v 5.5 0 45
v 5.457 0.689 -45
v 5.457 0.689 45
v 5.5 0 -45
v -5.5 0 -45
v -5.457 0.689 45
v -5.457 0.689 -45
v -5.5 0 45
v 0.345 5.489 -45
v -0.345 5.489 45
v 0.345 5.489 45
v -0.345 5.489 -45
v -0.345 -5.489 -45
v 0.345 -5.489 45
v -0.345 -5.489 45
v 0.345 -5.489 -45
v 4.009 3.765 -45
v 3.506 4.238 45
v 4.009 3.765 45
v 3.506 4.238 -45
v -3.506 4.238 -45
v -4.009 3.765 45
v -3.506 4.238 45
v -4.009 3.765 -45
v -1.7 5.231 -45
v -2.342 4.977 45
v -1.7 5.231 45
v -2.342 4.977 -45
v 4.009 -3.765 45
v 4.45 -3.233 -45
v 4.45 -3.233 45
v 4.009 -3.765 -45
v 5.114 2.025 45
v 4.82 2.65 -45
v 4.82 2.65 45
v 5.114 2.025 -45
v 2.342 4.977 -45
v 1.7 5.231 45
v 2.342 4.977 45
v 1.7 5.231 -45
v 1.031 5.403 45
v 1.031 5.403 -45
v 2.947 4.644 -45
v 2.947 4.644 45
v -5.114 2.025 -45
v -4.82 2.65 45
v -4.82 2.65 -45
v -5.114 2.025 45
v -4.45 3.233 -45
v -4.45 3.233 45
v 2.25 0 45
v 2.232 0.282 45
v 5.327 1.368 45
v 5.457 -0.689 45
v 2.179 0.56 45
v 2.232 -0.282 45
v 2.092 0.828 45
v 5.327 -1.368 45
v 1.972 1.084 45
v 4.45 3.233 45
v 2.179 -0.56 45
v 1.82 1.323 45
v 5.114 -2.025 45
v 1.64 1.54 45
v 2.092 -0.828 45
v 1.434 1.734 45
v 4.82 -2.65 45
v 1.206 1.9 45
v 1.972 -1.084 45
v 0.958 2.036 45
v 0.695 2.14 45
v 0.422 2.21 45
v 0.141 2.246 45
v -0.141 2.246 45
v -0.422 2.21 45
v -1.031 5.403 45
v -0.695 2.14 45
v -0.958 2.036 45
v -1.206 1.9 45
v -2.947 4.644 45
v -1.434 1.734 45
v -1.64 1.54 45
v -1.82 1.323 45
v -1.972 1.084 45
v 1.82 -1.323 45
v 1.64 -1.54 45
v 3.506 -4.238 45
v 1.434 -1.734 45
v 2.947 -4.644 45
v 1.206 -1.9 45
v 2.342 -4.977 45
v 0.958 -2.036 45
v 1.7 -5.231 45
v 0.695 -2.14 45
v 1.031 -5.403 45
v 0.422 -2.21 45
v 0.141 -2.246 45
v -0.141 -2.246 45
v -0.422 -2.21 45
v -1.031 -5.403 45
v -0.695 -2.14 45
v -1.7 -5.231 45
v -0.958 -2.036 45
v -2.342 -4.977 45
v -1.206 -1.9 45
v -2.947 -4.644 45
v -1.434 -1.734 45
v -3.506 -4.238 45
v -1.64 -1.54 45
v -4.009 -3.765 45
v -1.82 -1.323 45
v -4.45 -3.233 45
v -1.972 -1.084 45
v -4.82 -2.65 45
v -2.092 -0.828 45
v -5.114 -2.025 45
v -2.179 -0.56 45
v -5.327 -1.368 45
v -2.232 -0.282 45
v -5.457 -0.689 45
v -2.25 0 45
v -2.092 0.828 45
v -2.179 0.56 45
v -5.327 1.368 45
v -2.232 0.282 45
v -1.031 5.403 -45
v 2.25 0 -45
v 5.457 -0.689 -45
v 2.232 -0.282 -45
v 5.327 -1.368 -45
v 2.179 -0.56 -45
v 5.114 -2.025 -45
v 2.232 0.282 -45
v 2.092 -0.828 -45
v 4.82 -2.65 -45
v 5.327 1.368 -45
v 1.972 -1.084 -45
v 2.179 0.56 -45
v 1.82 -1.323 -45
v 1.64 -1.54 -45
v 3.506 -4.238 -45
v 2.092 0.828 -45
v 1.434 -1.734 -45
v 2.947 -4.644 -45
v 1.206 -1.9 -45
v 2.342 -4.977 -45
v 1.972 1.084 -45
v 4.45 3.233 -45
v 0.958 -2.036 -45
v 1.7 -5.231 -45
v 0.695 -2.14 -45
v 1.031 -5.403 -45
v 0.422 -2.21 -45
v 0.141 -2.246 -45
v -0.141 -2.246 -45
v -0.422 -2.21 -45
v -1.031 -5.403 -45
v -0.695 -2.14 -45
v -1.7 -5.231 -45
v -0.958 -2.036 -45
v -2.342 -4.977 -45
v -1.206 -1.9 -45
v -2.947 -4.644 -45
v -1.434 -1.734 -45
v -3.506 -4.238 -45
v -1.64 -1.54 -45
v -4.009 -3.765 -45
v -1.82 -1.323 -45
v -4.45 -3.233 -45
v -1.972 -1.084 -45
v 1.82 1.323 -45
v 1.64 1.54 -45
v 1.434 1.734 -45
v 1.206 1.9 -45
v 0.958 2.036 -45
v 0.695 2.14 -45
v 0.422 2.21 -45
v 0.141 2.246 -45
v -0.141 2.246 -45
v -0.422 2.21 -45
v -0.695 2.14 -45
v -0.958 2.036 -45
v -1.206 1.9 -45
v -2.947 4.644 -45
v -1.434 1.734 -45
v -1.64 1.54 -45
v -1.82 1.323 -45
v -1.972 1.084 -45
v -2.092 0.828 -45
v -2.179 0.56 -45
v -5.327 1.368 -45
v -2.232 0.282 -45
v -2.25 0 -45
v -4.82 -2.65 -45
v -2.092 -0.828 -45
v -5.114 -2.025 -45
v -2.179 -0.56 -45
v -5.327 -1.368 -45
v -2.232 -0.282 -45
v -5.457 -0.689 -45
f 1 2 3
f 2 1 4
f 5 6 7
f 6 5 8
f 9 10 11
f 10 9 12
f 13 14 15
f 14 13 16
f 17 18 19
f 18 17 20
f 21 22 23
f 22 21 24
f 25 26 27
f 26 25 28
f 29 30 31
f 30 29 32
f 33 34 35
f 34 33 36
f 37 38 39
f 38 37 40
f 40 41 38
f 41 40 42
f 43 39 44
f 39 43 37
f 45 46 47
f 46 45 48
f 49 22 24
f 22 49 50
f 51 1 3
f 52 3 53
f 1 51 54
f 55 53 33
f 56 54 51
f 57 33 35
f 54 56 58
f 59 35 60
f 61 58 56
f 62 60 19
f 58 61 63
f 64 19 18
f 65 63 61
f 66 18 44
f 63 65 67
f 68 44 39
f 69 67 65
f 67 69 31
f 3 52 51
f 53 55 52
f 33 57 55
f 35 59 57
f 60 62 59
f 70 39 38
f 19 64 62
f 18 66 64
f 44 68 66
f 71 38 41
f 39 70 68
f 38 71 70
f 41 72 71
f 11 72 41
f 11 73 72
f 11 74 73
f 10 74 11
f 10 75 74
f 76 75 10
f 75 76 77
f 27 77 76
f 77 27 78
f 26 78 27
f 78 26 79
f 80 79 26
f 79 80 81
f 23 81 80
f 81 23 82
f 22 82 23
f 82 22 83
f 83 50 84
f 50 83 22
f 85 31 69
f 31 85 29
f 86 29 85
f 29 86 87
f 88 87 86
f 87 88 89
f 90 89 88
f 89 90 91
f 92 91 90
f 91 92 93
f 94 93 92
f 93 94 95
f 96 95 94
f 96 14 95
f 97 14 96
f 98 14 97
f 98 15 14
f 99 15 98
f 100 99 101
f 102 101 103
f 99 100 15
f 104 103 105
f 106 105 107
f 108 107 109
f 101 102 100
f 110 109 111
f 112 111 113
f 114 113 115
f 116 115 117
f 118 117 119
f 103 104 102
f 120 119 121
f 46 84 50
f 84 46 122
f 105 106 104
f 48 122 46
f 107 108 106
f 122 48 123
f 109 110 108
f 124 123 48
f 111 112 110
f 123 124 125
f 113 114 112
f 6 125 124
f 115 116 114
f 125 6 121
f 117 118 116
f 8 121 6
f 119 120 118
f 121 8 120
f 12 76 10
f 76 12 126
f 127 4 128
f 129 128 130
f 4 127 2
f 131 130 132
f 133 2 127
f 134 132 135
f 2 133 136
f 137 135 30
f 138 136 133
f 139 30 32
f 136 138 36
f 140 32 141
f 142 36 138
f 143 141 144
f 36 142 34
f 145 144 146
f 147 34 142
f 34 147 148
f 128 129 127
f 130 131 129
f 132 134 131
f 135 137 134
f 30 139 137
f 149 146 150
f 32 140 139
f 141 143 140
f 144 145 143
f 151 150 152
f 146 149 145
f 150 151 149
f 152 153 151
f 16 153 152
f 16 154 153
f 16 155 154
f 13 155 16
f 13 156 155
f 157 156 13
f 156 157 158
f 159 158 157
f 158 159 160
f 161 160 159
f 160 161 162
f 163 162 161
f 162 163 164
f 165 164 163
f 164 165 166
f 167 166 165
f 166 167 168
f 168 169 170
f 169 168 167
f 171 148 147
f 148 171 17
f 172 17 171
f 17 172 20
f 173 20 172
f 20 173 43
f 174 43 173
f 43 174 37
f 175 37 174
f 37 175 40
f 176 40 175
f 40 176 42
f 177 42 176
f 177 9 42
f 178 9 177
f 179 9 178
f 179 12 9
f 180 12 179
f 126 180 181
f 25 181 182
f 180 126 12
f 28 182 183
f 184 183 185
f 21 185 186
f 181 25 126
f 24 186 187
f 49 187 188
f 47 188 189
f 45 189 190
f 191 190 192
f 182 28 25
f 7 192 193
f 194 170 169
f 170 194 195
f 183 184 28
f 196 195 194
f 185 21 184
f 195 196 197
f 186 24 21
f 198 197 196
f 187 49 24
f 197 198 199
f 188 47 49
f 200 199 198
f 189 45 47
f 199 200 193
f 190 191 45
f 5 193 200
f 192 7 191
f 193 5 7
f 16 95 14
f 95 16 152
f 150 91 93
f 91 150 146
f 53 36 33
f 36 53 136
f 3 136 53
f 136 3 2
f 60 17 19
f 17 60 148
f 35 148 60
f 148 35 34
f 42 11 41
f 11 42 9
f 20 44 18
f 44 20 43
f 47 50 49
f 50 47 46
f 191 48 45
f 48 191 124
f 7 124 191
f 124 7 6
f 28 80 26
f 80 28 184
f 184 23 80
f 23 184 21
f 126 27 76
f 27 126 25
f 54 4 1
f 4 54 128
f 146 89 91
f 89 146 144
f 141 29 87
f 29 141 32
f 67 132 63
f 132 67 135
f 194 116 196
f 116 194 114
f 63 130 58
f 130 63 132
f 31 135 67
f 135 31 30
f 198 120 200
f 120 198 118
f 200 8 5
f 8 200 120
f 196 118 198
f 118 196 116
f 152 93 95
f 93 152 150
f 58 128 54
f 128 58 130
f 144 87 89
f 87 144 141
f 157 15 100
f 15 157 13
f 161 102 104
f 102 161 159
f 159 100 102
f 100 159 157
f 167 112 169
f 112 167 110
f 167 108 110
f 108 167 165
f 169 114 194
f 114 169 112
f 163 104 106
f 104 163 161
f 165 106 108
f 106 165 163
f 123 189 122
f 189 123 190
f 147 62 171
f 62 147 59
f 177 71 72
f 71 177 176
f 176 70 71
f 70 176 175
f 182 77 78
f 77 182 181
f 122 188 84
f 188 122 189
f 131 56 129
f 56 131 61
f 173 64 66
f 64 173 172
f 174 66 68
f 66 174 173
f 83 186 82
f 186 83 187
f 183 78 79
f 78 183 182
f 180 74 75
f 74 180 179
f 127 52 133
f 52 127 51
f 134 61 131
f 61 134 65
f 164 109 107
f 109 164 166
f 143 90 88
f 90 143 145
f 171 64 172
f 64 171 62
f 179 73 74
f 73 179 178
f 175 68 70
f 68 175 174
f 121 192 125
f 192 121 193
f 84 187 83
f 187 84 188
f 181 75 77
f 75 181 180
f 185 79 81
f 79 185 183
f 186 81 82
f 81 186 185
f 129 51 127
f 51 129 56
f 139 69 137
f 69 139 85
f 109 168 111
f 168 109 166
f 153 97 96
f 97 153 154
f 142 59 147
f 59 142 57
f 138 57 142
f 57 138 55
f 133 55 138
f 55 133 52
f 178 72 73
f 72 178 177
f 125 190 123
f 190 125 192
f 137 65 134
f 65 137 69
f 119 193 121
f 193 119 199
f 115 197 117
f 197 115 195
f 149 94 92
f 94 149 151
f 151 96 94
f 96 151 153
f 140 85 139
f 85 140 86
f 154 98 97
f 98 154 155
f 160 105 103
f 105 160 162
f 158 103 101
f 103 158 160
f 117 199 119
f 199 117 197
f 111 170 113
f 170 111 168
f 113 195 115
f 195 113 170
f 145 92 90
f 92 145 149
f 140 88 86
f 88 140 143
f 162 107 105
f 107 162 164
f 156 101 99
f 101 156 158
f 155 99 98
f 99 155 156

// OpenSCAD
$fn = 50;


difference() {
	union() {
		translate(v = [0, 0, -45.0000000000]) {
			cylinder(h = 90, r = 5.5000000000);
		}
	}
	union() {
		translate(v = [0, 0, -100.0000000000]) {
			cylinder(h = 200, r = 2.2500000000);
		}
	}
}
